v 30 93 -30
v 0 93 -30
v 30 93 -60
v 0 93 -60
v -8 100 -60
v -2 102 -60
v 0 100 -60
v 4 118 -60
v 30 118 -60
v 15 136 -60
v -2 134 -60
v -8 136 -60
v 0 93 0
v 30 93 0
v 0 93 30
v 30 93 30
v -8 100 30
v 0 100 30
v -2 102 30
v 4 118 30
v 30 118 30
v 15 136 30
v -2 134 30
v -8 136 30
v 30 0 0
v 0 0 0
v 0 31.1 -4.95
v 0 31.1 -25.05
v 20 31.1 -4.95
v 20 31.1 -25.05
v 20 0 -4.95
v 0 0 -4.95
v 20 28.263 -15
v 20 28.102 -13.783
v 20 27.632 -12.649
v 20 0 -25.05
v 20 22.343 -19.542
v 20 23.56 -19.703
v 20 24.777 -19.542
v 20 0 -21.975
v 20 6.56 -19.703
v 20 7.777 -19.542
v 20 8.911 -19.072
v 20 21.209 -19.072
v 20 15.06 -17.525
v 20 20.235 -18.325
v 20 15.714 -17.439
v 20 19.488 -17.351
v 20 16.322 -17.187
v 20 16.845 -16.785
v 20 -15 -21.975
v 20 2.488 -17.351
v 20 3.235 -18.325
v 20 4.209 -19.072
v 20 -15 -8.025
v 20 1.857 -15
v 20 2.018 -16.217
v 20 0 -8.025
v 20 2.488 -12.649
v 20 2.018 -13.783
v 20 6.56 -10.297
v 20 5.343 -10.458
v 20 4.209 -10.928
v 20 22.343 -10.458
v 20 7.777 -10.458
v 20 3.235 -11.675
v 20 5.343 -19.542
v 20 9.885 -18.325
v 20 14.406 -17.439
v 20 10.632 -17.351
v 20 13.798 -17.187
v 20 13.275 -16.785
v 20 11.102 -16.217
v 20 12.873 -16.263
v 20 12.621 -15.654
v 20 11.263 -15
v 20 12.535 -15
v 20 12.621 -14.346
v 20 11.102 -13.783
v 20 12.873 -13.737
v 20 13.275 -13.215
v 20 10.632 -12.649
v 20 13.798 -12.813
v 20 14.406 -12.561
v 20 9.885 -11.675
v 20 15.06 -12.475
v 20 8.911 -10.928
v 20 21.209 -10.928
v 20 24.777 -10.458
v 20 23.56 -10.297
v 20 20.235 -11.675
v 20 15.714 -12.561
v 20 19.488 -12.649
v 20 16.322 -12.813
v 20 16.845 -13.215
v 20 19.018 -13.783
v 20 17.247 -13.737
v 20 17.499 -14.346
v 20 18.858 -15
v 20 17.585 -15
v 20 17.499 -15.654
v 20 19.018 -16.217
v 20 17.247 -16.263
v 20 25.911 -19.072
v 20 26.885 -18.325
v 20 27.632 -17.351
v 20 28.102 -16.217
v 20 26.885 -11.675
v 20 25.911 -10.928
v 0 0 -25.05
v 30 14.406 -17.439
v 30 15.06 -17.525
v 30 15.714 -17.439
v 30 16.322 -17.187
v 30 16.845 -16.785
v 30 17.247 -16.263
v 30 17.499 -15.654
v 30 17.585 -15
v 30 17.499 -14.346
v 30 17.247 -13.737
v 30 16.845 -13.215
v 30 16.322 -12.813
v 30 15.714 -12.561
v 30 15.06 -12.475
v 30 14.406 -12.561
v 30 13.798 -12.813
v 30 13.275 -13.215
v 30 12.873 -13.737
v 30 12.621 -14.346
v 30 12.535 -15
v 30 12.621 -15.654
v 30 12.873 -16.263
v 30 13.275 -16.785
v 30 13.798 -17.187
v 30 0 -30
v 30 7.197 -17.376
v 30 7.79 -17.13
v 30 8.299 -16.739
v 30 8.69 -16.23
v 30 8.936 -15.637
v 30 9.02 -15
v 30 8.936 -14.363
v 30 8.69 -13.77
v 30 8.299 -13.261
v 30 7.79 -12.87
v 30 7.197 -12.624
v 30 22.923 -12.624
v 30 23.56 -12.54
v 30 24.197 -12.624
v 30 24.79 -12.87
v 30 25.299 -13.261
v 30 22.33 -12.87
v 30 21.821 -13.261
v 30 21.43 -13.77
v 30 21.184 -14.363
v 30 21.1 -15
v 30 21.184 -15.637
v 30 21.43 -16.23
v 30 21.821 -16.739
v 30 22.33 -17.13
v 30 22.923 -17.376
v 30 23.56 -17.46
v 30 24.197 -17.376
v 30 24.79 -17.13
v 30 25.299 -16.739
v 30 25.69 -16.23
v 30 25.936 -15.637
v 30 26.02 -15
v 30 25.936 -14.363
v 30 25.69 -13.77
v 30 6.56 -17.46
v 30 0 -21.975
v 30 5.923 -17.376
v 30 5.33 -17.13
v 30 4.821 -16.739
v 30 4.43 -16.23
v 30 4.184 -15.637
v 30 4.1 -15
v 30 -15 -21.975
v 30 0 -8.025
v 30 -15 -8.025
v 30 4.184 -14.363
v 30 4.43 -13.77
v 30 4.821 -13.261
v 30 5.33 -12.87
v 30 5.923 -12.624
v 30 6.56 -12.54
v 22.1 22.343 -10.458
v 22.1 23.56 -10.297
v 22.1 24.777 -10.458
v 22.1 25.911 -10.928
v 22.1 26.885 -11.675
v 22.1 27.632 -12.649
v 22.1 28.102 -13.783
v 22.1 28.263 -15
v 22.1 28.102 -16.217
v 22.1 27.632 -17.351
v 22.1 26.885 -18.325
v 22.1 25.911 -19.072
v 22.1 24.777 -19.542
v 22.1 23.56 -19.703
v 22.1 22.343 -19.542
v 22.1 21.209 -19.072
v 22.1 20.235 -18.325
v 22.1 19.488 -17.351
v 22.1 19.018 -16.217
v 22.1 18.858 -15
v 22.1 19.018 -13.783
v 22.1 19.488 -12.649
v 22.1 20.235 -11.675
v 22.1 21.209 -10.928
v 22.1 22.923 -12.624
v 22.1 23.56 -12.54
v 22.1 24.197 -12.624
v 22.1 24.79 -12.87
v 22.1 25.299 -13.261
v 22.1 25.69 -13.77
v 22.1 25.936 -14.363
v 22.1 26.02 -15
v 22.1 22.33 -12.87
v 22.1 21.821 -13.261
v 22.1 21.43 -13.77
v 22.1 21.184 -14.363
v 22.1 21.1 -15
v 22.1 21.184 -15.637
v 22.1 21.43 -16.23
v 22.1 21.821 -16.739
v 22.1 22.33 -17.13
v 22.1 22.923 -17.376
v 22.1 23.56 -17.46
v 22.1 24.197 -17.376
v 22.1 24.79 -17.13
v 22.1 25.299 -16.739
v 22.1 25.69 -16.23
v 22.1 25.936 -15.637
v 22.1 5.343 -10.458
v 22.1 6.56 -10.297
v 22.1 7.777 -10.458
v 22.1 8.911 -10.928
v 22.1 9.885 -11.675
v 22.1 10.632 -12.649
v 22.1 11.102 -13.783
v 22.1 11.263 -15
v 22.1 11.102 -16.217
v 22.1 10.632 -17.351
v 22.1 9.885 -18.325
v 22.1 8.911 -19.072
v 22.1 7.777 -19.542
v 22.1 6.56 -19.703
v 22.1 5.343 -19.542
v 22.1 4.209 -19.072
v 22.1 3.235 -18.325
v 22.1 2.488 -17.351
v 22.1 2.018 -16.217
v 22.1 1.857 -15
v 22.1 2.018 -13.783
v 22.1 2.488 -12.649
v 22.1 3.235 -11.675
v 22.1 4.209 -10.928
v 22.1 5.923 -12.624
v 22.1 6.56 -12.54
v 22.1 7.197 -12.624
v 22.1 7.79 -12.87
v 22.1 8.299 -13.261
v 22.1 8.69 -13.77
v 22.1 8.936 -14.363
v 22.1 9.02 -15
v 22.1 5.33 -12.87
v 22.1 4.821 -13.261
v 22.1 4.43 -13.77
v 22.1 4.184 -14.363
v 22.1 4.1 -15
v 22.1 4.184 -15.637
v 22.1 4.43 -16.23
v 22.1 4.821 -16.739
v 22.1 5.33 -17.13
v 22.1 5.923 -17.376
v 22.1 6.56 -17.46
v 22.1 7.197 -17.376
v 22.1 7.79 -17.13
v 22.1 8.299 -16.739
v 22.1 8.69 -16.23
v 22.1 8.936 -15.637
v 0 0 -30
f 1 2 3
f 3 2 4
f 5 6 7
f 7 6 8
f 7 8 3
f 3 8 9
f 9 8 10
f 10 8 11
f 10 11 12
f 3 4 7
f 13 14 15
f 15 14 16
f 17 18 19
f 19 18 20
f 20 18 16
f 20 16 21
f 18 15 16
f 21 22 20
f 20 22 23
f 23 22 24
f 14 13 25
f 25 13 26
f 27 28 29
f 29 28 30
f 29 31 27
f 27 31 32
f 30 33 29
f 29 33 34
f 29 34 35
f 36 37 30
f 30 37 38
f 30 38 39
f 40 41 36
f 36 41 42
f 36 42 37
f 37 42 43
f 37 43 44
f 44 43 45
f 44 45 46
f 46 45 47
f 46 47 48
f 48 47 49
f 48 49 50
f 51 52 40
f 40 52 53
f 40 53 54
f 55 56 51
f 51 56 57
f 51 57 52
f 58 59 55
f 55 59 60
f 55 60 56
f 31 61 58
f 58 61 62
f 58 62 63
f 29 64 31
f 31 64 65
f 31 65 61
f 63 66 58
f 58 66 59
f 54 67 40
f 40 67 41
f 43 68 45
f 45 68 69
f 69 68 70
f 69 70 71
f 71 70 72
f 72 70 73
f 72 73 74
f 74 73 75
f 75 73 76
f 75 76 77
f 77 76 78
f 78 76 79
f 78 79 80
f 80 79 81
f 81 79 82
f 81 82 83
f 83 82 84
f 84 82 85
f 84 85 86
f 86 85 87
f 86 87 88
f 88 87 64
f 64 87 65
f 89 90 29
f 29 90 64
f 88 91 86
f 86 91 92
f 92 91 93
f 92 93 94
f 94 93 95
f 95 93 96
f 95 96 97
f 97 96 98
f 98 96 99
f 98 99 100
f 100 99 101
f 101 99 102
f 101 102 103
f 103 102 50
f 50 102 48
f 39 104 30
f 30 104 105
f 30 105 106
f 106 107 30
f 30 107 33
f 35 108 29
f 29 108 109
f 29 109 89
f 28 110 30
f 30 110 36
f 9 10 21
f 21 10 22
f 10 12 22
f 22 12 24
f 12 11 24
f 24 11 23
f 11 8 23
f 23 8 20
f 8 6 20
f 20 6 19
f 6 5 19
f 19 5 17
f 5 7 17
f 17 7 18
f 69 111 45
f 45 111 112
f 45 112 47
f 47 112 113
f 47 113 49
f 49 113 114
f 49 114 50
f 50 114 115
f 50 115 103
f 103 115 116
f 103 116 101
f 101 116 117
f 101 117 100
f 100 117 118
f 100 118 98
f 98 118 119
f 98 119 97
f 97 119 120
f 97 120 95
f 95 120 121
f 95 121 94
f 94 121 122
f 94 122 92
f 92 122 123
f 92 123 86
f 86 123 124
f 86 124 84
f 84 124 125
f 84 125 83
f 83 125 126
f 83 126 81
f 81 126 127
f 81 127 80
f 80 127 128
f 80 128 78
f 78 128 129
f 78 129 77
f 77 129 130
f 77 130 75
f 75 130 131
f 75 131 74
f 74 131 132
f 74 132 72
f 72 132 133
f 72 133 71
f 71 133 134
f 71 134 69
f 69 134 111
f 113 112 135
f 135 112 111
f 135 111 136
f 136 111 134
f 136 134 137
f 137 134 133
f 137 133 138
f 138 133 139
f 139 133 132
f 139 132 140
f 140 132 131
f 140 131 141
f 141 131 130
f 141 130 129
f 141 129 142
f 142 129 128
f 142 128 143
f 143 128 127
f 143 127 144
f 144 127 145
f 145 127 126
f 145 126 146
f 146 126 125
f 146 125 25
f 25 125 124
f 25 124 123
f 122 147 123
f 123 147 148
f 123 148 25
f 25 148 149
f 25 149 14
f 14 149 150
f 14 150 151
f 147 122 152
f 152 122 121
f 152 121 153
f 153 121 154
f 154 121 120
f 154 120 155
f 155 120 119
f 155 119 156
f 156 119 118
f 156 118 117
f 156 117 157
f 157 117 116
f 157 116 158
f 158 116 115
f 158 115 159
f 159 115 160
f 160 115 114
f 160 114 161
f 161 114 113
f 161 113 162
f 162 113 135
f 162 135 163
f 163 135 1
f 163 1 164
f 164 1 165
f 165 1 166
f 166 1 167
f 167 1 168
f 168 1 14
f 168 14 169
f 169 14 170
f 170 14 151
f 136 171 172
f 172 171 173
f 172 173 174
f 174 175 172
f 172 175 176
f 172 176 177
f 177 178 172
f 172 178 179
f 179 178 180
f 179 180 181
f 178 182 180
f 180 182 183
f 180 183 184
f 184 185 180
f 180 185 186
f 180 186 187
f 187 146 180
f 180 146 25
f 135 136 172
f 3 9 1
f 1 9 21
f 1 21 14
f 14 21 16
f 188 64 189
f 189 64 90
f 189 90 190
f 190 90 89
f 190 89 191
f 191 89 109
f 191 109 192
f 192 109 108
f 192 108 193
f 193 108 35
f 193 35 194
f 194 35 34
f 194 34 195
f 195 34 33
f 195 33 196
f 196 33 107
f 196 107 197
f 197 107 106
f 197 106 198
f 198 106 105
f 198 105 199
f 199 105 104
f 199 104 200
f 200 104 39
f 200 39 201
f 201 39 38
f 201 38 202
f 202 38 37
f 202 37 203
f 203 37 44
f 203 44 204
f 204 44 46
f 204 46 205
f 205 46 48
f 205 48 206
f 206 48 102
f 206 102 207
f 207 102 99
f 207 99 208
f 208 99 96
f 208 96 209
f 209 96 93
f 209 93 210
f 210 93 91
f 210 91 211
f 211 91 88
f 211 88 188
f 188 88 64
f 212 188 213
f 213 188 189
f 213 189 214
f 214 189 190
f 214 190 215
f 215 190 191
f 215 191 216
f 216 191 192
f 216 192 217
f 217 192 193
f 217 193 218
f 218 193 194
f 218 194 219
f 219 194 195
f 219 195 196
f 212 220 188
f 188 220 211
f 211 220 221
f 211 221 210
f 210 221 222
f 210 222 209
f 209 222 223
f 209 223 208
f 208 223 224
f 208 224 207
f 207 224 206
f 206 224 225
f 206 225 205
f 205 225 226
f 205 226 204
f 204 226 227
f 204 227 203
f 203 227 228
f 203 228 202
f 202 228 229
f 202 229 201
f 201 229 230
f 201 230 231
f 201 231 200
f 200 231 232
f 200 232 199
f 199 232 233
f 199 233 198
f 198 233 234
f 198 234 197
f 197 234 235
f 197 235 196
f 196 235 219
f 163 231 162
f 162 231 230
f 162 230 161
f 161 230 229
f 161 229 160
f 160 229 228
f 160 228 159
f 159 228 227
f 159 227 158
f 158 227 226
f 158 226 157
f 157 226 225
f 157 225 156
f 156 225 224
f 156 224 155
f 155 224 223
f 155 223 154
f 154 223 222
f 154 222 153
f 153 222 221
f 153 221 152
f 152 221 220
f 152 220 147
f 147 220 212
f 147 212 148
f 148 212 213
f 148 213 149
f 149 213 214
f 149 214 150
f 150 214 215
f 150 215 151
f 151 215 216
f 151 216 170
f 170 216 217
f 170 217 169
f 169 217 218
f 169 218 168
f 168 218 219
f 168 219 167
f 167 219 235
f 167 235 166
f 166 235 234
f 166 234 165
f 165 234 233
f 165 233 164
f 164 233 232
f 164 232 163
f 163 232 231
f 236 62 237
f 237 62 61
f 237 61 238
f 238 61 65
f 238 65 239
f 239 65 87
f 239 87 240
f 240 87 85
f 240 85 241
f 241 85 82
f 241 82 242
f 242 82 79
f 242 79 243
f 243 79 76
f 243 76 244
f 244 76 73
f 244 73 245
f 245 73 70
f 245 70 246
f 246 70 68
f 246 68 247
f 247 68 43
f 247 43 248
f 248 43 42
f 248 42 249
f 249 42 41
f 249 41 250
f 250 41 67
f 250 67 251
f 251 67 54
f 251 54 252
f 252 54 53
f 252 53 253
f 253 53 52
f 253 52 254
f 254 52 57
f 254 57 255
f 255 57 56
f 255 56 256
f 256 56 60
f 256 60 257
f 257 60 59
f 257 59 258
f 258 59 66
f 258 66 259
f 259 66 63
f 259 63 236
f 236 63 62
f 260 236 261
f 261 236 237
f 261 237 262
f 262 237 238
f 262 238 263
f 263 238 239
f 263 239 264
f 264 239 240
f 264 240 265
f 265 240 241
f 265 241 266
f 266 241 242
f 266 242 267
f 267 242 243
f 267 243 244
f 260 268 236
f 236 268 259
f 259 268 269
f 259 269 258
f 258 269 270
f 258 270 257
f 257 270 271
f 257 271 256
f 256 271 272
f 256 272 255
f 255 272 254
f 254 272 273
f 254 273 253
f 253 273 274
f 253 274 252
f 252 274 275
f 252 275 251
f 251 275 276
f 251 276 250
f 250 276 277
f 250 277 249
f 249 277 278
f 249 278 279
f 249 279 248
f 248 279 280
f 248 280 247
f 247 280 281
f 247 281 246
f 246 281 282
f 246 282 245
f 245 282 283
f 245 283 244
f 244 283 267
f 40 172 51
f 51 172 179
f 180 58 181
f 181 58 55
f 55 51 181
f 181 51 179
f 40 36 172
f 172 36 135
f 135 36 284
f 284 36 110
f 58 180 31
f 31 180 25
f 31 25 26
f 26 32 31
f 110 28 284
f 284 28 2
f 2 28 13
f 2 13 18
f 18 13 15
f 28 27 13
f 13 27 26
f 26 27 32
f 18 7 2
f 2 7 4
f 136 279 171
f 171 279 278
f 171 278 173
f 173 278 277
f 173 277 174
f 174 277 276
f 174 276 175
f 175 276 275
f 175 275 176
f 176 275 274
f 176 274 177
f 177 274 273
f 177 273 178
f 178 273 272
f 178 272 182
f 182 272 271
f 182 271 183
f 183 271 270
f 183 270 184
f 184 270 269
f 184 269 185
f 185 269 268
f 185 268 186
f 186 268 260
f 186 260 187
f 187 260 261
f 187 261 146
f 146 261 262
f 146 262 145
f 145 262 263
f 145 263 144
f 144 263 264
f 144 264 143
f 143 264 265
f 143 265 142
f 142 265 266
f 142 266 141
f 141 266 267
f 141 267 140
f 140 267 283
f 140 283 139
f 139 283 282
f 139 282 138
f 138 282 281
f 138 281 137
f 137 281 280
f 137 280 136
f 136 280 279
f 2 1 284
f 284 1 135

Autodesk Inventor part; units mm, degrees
ref_plane "YZ Plane" through (0, 0, 0) normal (1, 0, 0) x (0, 1, 0)
ref_plane "XZ Plane" through (0, 0, 0) normal (0, 1, 0) x (-1, 0, 0)
sketch "Sketch1" plane through (0, 0, 0) normal (0, 0, 1) x (1, 0, 0)
  line L0 (0, 0) -> (25, 0)
  line L1 (25, 0) -> (25, 40)
  line L2 (25, 40) -> (0, 40)
  line L3 (0, 40) -> (0, 0)
  dimension "d1" = 25
  dimension "d2" = 40
  dimension "d3" = 25
extrude "Extrusion1" add sketch "Sketch1" against normal blind 30
sketch "Sketch2" plane through (25, 0, 0) normal (1, 0, 0) x (0, 0, -1)
  line L0 (0, 0) -> (30, 0) projected
  circle A0 centre (15, 6.56) radius 2.46
extrude "Extrusion2" cut sketch "Sketch2" against normal blind 30
sketch "Sketch3" plane through (0, 0, 0) normal (-1, 0, 0) x (0, 0, 1)
  line L0 (0, 0) -> (-30, 0) projected
  line L1 (-25.05, 0) -> (-4.95, 0)
  line L2 (-4.95, 0) -> (-4.95, 33.12)
  line L3 (-4.95, 33.12) -> (-25.05, 33.12)
  line L4 (-25.05, 33.12) -> (-25.05, 0)
  dimension "d11" = 20.1
extrude "Extrusion3" cut sketch "Sketch3" against normal blind 20
sketch "Sketch4" plane through (0, 0, 0) normal (0, -1, 0) x (1, 0, 0)
  line L0 (20, -4.95) -> (20, -25.05) projected
  line L1 (20, -15) -> (25, -15)
  line L2 (25, 0) -> (25, -30) projected
  line L3 (20, -8.025) -> (25, -8.025)
  line L4 (25, -8.025) -> (25, -21.975)
  line L5 (25, -21.975) -> (20, -21.975)
  line L6 (20, -21.975) -> (20, -8.025)
  line L7 (20, -8.025) -> (25, -21.975) construction
  line L8 (25, -8.025) -> (20, -21.975) construction
  line L9 (25, -12.54) -> (25, -17.46) projected
  point P0 (0, 0)
  point P1 (22.5, -15)
  dimension "d14" = 13.95
extrude "Extrusion4" add sketch "Sketch4" along normal blind 15
sketch "Sketch5" plane through (20, 0, 0) normal (-1, 0, 0) x (0, 0, 1)
  circle A0 centre (-15, 6.56) radius 2.46 projected
  circle A1 centre (-15, 6.56) radius 4.7025
  circle A2 centre (-15, 6.56) radius 2.46 projected
  circle A3 centre (-15, 6.56) radius 2.46
  point P0 (0, 0)
  dimension "d17" = 9.405
extrude "Extrusion5" cut sketch "Sketch5" against normal blind 2.1
sketch "Sketch6" plane through (25, 0, 0) normal (1, 0, 0) x (0, 0, -1)
  circle A0 centre (15, 6.56) radius 4.7025 projected
  line L0 (15, 6.56) -> (15, 23.56)
  circle A1 centre (15, 23.56) radius 2.46
  point P0 (0, 0)
  dimension "d20" = 17
  dimension "d21" = 4.92
extrude "Extrusion6" cut sketch "Sketch6" against normal blind 10 contours A1
sketch "Sketch7" plane through (20, 0, 0) normal (-1, 0, 0) x (0, 0, 1)
  circle A0 centre (-15, 23.56) radius 2.46 projected
  circle A1 centre (-15, 23.56) radius 4.7025
  point P0 (0, 0)
  dimension "d24" = 9.405
extrude "Extrusion7" cut sketch "Sketch7" against normal blind 2.1
sketch "Sketch9" plane through (25, 0, 0) normal (1, 0, 0) x (0, 0, -1)
  circle A0 centre (15, 6.56) radius 2.46 projected
  circle A1 centre (15, 6.56) radius 2.46
  circle A2 centre (15, 23.56) radius 2.46 projected
  circle A3 centre (15, 23.56) radius 2.46
  line L0 (30, 40) -> (30, 0) projected
  line L1 (30, 0) -> (30, 40)
  line L2 (30, 40) -> (0, 40)
  line L3 (0, 40) -> (0, 0)
  line L4 (0, 0) -> (8.025, 0) projected
  line L5 (21.975, 0) -> (21.975, -15)
  line L6 (21.975, -15) -> (8.025, -15)
  line L7 (8.025, -15) -> (8.025, 0)
  line L8 (0, 0) -> (8.025, 0)
  line L9 (21.975, 0) -> (30, 0)
extrude "Extrusion8" add sketch "Sketch9" along normal blind 5
sketch "Sketch10" plane through (0, 40, 0) normal (0, 1, 0) x (1, 0, 0)
  line L0 (0, 30) -> (30, 30) projected
  line L1 (30, 0) -> (0, 0) projected
  line L2 (0, 30) -> (30, 30)
  line L3 (30, 30) -> (30, 0)
  line L4 (30, 0) -> (0, 0)
  line L5 (0, 0) -> (0, 30)
extrude "Extrusion9" add sketch "Sketch10" along normal blind 30
sketch "Sketch12" plane through (30, 0, 0) normal (1, 0, 0) x (0, 0, -1)
  circle A0 centre (15, 6.56) radius 2.46 projected
  line L0 (15, 6.56) -> (15, 15.06)
  circle A1 centre (15, 15.06) radius 2.525
  point P0 (0, 0)
  dimension "d31" = 8.5
  dimension "d33" = 5.05
extrude "Extrusion10" cut sketch "Sketch12" against normal blind 30 contours A1
sketch "Sketch14" plane through (0, 0, 0) normal (0, 0, 1) x (1, 0, 0)
  line L0 (30, 70) -> (0, 70) projected
  line L1 (0, 100) -> (-8, 100)
  line L2 (30, 0) -> (30, 70) projected
  line L3 (30, 118) -> (30, 70)
  line L4 (30, 105) -> (30, 100)
  line L5 (-2, 134) -> (-8, 136)
  line L6 (-2, 134) -> (4, 118)
  line L7 (-2, 102) -> (-8, 100)
  line L8 (-2, 102) -> (4, 118)
  line L9 (0, 70) -> (30, 70) projected
  line L10 (0, 70) -> (0, 100)
  line L11 (15, 136) -> (30, 118)
  line L12 (-8, 136) -> (15, 136)
  point P0 (0, 0)
  dimension "d47" = 30
extrude "Extrusion12" add sketch "Sketch14" against normal blind 30
sketch "Sketch15" plane through (0, 0, -25.05) normal (-1, 0, 0) x (0, 0, 1)
  line L0 (0, 33.12) -> (20.1, 33.12) projected
  line L1 (20.1, 33.12) -> (20.1, 0) projected
  line L2 (0, 33.12) -> (20.1, 33.12)
  line L3 (20.1, 33.12) -> (20.1, 31.1)
  line L4 (20.1, 31.1) -> (0, 31.1)
  line L5 (0, 31.1) -> (0, 33.12)
  point P0 (25.05, 0)
  dimension "d57" = 2.02
extrude "Extrusion13" add sketch "Sketch15" against normal blind 20
sketch "Sketch23" plane through (0, 0, 0) normal (0, 0, 1) x (1, 0, 0)
  line L0 (0, 100) -> (-8, 100) projected
  line L1 (-8, 100) -> (-2, 102) projected
  line L2 (-8, 100) -> (-2, 102)
  line L3 (-2, 102) -> (4, 118) projected
  line L4 (-2, 102) -> (4, 118)
  line L5 (-2, 134) -> (4, 118) projected
  line L6 (4, 118) -> (-2, 134)
  line L7 (-2, 134) -> (-8, 136) projected
  line L8 (-2, 134) -> (-8, 136)
  line L9 (-8, 136) -> (15, 136) projected
  line L10 (-8, 136) -> (15, 136)
  line L11 (30, 118) -> (15, 136) projected
  line L12 (15, 136) -> (30, 118)
  line L13 (30, 118) -> (30, 93)
  line L14 (30, 0) -> (30, 118) projected
  line L15 (30, 93) -> (0, 93)
  line L16 (0, 93) -> (0, 100)
  line L17 (-8, 100) -> (0, 100)
  point P0 (0, 0)
  dimension "d85" = 25
extrude "Extrusion14" add sketch "Sketch23" along normal blind 30
ref_plane "Work Plane1" through (0, 0, -15) normal (0, 0, 1) x (1, 0, 0)
mirror "Mirror1" about plane through (0, 0, -15) normal (0, 0, 1) of "Extrusion14"
properties part number "32mm_x_90mm"
